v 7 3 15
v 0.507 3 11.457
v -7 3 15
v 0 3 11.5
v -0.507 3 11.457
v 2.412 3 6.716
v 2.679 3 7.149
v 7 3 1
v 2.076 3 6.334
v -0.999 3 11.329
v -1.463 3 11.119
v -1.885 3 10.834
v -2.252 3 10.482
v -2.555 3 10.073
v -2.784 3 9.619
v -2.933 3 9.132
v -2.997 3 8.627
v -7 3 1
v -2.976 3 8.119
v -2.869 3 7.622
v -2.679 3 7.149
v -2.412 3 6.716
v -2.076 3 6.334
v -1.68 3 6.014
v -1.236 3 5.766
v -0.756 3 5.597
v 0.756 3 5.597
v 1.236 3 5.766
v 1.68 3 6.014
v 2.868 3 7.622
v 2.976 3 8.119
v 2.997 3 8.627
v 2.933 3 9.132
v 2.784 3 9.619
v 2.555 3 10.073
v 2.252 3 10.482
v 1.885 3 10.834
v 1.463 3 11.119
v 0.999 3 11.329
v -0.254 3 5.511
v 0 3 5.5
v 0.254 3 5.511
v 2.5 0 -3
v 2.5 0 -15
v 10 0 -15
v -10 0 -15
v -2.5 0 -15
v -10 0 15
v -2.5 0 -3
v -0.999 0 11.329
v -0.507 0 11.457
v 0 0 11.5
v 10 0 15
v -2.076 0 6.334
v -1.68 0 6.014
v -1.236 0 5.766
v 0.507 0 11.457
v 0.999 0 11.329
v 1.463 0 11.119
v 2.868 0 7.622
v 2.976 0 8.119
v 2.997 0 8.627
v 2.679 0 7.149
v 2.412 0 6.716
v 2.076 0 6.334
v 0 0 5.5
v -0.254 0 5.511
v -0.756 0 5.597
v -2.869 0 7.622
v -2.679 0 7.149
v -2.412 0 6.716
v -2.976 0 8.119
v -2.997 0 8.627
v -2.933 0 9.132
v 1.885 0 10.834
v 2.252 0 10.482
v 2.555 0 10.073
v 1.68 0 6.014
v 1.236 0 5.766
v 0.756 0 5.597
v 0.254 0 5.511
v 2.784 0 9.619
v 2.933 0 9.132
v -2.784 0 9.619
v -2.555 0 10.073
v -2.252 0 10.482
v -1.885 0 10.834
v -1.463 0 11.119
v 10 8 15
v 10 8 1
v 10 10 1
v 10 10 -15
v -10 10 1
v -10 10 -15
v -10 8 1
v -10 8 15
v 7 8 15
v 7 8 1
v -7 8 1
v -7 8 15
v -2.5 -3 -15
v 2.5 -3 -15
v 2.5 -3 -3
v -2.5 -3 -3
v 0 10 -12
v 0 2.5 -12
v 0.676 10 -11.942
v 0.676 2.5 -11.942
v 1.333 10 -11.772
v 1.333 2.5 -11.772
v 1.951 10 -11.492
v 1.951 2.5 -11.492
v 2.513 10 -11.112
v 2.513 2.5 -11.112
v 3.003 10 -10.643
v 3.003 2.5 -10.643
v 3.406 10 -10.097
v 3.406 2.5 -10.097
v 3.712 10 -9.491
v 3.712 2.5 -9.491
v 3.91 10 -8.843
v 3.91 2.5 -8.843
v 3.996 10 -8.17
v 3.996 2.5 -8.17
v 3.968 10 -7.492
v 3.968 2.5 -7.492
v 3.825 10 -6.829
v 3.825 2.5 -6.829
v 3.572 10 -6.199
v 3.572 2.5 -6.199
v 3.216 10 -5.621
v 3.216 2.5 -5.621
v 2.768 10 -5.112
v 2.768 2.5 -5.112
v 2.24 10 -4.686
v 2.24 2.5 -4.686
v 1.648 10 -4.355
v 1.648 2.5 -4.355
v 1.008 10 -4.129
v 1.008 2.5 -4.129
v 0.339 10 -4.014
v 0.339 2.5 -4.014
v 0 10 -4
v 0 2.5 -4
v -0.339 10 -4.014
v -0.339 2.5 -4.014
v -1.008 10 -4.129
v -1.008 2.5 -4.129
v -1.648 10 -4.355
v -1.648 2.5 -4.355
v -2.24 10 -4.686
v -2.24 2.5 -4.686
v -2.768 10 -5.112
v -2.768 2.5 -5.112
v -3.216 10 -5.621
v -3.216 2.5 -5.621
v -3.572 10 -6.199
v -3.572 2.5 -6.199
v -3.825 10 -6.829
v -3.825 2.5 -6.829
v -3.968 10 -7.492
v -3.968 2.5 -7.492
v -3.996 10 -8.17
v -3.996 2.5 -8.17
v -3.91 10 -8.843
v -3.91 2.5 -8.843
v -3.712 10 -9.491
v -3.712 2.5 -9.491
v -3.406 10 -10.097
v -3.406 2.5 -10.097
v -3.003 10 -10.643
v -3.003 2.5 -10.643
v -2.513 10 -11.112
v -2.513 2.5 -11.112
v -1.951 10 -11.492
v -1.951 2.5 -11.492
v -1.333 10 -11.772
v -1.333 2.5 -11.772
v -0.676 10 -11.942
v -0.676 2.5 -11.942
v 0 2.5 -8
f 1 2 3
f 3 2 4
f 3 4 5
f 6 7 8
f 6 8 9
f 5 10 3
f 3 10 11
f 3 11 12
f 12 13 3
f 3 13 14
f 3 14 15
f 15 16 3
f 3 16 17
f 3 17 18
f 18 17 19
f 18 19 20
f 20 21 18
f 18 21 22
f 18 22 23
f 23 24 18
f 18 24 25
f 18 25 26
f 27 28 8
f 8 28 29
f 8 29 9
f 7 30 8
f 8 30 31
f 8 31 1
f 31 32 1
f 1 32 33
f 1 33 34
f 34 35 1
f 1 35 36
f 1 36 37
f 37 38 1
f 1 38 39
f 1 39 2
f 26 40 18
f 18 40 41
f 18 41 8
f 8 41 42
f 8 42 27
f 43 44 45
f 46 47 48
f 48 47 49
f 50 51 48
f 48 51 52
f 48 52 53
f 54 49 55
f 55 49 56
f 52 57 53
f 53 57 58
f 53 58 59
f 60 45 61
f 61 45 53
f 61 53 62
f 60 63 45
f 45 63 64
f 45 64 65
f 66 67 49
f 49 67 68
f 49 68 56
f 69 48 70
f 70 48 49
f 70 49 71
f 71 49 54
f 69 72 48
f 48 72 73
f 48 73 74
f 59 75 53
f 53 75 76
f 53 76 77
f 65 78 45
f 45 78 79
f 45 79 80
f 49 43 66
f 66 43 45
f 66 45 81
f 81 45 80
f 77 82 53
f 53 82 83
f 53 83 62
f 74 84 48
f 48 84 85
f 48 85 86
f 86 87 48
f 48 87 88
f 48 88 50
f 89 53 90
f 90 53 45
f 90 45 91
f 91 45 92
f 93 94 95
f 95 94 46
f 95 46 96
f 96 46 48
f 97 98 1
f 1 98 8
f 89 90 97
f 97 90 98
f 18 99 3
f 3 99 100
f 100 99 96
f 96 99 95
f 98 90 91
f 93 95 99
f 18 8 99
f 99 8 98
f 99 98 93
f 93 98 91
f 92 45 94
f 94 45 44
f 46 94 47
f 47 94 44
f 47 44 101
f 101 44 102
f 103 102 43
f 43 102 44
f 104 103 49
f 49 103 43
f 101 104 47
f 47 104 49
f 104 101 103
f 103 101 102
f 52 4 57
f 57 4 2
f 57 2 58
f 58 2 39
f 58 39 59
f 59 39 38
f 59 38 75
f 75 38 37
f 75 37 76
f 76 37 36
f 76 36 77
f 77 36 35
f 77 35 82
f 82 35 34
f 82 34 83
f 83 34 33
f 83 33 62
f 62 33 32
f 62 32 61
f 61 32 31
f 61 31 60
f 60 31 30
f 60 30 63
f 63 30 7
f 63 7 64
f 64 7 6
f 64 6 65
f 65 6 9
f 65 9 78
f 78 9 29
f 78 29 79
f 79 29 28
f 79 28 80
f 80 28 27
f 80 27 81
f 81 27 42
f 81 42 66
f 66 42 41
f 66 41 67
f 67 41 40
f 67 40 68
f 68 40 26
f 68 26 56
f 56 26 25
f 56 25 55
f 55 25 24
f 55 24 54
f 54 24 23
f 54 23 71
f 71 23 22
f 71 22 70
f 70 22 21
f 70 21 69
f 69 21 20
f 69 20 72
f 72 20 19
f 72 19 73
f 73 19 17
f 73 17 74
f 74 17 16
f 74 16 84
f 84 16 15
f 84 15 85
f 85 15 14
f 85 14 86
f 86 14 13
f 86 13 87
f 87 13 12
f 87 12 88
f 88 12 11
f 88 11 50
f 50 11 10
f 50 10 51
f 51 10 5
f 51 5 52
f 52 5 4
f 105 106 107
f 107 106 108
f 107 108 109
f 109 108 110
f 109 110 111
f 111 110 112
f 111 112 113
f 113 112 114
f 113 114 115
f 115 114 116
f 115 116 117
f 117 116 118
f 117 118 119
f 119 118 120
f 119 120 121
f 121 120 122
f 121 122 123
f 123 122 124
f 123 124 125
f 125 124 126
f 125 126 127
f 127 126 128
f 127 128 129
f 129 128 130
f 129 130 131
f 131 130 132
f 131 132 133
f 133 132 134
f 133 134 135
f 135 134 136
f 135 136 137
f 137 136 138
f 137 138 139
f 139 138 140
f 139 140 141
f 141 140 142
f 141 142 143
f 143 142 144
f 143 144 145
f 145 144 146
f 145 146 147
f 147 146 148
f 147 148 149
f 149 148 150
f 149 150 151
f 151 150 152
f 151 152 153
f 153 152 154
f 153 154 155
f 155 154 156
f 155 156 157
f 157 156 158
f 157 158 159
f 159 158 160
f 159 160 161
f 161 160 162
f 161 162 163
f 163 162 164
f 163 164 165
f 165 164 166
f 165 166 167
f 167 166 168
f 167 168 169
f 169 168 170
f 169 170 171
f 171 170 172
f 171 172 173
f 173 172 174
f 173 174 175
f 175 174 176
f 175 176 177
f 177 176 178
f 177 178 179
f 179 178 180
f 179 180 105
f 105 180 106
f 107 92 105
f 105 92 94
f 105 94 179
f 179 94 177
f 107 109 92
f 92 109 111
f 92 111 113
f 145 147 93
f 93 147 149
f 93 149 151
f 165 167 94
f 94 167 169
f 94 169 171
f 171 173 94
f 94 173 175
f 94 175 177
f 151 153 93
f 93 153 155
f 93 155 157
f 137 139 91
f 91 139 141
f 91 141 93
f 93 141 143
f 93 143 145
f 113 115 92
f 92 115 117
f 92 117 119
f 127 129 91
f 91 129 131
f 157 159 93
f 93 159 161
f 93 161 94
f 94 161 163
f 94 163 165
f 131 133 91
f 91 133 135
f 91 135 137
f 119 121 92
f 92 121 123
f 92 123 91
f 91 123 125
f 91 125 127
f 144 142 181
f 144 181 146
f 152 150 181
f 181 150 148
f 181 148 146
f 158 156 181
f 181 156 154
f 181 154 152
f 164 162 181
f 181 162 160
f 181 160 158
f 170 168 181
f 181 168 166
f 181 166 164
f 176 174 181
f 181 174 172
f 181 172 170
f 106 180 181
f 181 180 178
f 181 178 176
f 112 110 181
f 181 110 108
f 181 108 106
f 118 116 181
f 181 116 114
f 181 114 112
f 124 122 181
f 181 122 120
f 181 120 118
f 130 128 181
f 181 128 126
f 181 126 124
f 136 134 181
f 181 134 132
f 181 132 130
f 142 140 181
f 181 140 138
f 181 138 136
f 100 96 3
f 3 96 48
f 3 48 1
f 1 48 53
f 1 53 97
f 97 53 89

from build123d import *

# Parameters (mm, degrees)
SKETCH1_W               = 20
SKETCH1_H               = 30
BOSS_EXTRUDE1_DEPTH     = 3
SKETCH2_W               = 5
SKETCH2_H               = 12
BOSS_EXTRUDE2_DEPTH     = 3
SKETCH3_R               = 7
SKETCH3_R_2             = 4
BOSS_EXTRUDE3_DEPTH     = 7
SKETCH4_R               = 4
BOSS_EXTRUDE4_DEPTH     = 1
CUT_EXTRUDE1_DEPTH      = 20.339079606
CUT_EXTRUDE1_DEPTH_BACK = 20.339079606
SKETCH5_R               = 3
SKETCH6_R               = 7
SKETCH6_R_2             = 4
BOSS_EXTRUDE6_DEPTH     = 7
SKETCH7_W               = 20
SKETCH7_H               = 3
BOSS_EXTRUDE7_DEPTH     = 19
SKETCH8_W               = 5
SKETCH8_H               = 3
BOSS_EXTRUDE8_DEPTH     = 12
CUT_EXTRUDE2_START      = -1.5
SKETCH10_R              = 4
CUT_EXTRUDE2_DEPTH      = 1.5
SKETCH12_W              = 3
SKETCH12_H              = 32
BOSS_EXTRUDE9_DEPTH     = 5
CUT_EXTRUDE3_DEPTH      = 52
CUT_EXTRUDE3_DEPTH_BACK = 52
SKETCH13_W              = 44.018077629
SKETCH13_H              = 41.98282258
CUT_EXTRUDE4_DEPTH      = 2


with BuildPart() as part:
    # Sketch1 → Boss-Extrude1 (new body)
    with BuildSketch(Plane(origin=(0, 0, 0), x_dir=(1, 0, 0), z_dir=(0, 1, 0))):
        Rectangle(SKETCH1_W, SKETCH1_H)
    boss_extrude1 = extrude(amount=BOSS_EXTRUDE1_DEPTH)

    # Sketch2 → Boss-Extrude2 (add)
    with BuildSketch(Plane.XZ):
        with Locations((0, -9)):
            Rectangle(SKETCH2_W, SKETCH2_H)
    boss_extrude2 = extrude(amount=BOSS_EXTRUDE2_DEPTH)

    # Sketch3 → Boss-Extrude3 (add)
    with BuildSketch(Plane(origin=(0, 3, 0), x_dir=(1, 0, 0), z_dir=(0, 1, 0))):
        with Locations(Location((0, 8, 0), (0, 0, 90))):
            Circle(SKETCH3_R)
        with Locations(Location((0, 8, 0), (0, 0, 270))):
            Circle(SKETCH3_R_2, mode=Mode.SUBTRACT)
    boss_extrude3 = extrude(amount=BOSS_EXTRUDE3_DEPTH)

    # Sketch4 → Boss-Extrude4 (add)
    with BuildSketch(Plane(origin=(0, 3, 0), x_dir=(1, 0, 0), z_dir=(0, 1, 0))):
        with Locations(Location((0, 8, 0), (0, 0, 270))):
            Circle(SKETCH4_R)
    boss_extrude4 = extrude(amount=BOSS_EXTRUDE4_DEPTH)

    # Sketch5 → Cut-Extrude1 (cut, two sides: drawn at the far end of the back side and taken through both)
    with BuildSketch(Plane(origin=(0, 3, 0), x_dir=(1, 0, 0), z_dir=(0, 1, 0)).offset(-CUT_EXTRUDE1_DEPTH_BACK)):
        with Locations(Location((0, -8.5, 0), (0, 0, 90))):
            Circle(SKETCH5_R)
    extrude(amount=CUT_EXTRUDE1_DEPTH + CUT_EXTRUDE1_DEPTH_BACK, mode=Mode.SUBTRACT)

    # Sketch6 → Boss-Extrude6 (add)
    # profile 1 of 2: a face of its own
    with BuildSketch(Plane(origin=(0, 3, 0), x_dir=(1, 0, 0), z_dir=(0, 1, 0))):
        Polygon((0, 15), (-10, 15), (-10, -1), (10, -1), (10, 15), align=None)
        with BuildLine():
            ThreePointArc((7, 8), (-4.949747468, 3.050252532), (0, 15))
            ThreePointArc((0, 15), (4.949747468, 12.949747468), (7, 8))
        make_face(mode=Mode.SUBTRACT)
    # profile 2 of 2: a face of its own
    with BuildSketch(Plane(origin=(0, 3, 0), x_dir=(1, 0, 0), z_dir=(0, 1, 0))):
        with Locations((0, 8)):
            Circle(SKETCH6_R)
        with Locations(Location((0, 8, 0), (0, 0, 270))):
            Circle(SKETCH6_R_2, mode=Mode.SUBTRACT)
    boss_extrude6 = extrude(amount=BOSS_EXTRUDE6_DEPTH)

    # Sketch7 → Boss-Extrude7 (add)
    with BuildSketch(Plane.XY.offset(15)):
        with Locations((0, 1.5)):
            Rectangle(SKETCH7_W, SKETCH7_H)
    extrude(amount=BOSS_EXTRUDE7_DEPTH)

    # Mirror3: Boss-Extrude1, Boss-Extrude2, Boss-Extrude3, Boss-Extrude4, Boss-Extrude6 across plane
    add(boss_extrude1.mirror(Plane.XY.offset(17)))
    add(boss_extrude2.mirror(Plane.XY.offset(17)))
    add(boss_extrude3.mirror(Plane.XY.offset(17)))
    add(boss_extrude4.mirror(Plane.XY.offset(17)))
    add(boss_extrude6.mirror(Plane.XY.offset(17)))

    # Sketch8 → Boss-Extrude8 (add)
    with BuildSketch(Plane(origin=(0, 0, 37), x_dir=(-1, 0, 0), z_dir=(0, 0, -1))):
        with Locations((0, -1.5)):
            Rectangle(SKETCH8_W, SKETCH8_H)
    extrude(amount=BOSS_EXTRUDE8_DEPTH)

    # Sketch10 → Cut-Extrude2 (cut)
    with BuildSketch(Plane(origin=(0, 4, 0), x_dir=(1, 0, 0), z_dir=(0, 1, 0)).offset(CUT_EXTRUDE2_START)):
        with Locations(Location((0, 8, 0), (0, 0, 270))):
            Circle(SKETCH10_R)
        with Locations(Location((0, -42, 0), (0, 0, 90))):
            Circle(SKETCH10_R)
    extrude(amount=CUT_EXTRUDE2_DEPTH, mode=Mode.SUBTRACT)

    # Sketch12 → Boss-Extrude9 (add)
    with BuildSketch(Plane(origin=(0, 3, 0), x_dir=(1, 0, 0), z_dir=(0, 1, 0))):
        with Locations((8.5, -17)):
            Rectangle(SKETCH12_W, SKETCH12_H)
        with Locations((-8.5, -17)):
            Rectangle(SKETCH12_W, SKETCH12_H)
    extrude(amount=BOSS_EXTRUDE9_DEPTH)

    # Sketch13 → Cut-Extrude3 (cut, two sides: drawn at the far end of the back side and taken through both)
    with BuildSketch(Plane(origin=(0, 0, 0), x_dir=(1, 0, 0), z_dir=(0, 1, 0)).offset(-CUT_EXTRUDE3_DEPTH_BACK)):
        with Locations((-0.328555997, -37.99141129)):
            Rectangle(SKETCH13_W, SKETCH13_H)
    extrude(amount=CUT_EXTRUDE3_DEPTH + CUT_EXTRUDE3_DEPTH_BACK, mode=Mode.SUBTRACT)

    # Sketch14 → Cut-Extrude4 (cut)
    with BuildSketch(Plane.XY.offset(17)):
        Polygon((10, 8), (7, 8), (7, 3), (-7, 3), (-7, 8), (-10, 8), (-10, 0), (10, 0), align=None)
    extrude(amount=-CUT_EXTRUDE4_DEPTH, mode=Mode.SUBTRACT)


solid = part.part
